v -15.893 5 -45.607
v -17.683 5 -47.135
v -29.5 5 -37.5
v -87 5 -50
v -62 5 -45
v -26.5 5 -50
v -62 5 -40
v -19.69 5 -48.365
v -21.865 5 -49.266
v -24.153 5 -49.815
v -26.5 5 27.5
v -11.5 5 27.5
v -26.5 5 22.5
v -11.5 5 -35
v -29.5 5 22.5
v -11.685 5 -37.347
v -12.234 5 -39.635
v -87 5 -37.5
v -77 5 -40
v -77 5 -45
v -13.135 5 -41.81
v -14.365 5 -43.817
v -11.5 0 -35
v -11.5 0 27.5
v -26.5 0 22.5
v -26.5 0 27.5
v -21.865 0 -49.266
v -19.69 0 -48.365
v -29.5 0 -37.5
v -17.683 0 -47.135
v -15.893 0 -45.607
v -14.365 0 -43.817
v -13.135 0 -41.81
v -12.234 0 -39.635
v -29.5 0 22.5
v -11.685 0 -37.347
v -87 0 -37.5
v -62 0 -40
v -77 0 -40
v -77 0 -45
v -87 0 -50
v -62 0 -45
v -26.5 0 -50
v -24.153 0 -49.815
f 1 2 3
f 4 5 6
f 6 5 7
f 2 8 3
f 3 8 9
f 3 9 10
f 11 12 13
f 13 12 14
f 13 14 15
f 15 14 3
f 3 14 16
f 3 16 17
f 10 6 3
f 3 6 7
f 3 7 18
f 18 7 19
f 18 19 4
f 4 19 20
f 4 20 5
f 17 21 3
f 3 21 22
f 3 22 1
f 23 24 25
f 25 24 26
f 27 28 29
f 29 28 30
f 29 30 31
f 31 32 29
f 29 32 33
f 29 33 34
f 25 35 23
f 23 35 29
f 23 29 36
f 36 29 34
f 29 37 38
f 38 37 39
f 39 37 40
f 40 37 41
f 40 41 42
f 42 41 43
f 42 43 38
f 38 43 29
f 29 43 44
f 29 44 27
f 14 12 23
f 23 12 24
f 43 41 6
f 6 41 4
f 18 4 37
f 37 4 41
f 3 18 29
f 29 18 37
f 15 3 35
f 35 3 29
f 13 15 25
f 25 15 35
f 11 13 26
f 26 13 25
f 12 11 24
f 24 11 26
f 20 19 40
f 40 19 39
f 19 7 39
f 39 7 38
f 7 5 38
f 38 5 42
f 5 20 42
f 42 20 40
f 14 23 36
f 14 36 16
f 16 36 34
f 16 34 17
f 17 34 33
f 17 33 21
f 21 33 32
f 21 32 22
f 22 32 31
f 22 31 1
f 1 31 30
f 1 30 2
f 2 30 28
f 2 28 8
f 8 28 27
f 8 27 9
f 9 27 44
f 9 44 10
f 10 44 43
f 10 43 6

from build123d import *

# Parameters (mm, degrees)
SKETCH1_W           = 15
SKETCH1_H           = 5
BOSS_EXTRUDE1_DEPTH = 5
FILLET3_R           = 15


with BuildPart() as part:
    # Sketch1 → Boss-Extrude1 (new body)
    with BuildSketch(Plane(origin=(0, 0, 0), x_dir=(1, 0, 0), z_dir=(0, 1, 0))):
        Polygon((-26.5, -22.5), (-29.5, -22.5), (-29.5, 37.5), (-87, 37.5), (-87, 50), (-11.5, 50), (-11.5, -27.5), (-26.5, -27.5), align=None)
        with Locations((-69.5, 42.5)):
            Rectangle(SKETCH1_W, SKETCH1_H, mode=Mode.SUBTRACT)
    extrude(amount=BOSS_EXTRUDE1_DEPTH)

    # Fillet3
    fillet3_edges = [part.edges().sort_by_distance(p)[0] for p in [
        (-11.5, 2.5, -50),
    ]]
    fillet(fillet3_edges, radius=FILLET3_R)


solid = part.part
